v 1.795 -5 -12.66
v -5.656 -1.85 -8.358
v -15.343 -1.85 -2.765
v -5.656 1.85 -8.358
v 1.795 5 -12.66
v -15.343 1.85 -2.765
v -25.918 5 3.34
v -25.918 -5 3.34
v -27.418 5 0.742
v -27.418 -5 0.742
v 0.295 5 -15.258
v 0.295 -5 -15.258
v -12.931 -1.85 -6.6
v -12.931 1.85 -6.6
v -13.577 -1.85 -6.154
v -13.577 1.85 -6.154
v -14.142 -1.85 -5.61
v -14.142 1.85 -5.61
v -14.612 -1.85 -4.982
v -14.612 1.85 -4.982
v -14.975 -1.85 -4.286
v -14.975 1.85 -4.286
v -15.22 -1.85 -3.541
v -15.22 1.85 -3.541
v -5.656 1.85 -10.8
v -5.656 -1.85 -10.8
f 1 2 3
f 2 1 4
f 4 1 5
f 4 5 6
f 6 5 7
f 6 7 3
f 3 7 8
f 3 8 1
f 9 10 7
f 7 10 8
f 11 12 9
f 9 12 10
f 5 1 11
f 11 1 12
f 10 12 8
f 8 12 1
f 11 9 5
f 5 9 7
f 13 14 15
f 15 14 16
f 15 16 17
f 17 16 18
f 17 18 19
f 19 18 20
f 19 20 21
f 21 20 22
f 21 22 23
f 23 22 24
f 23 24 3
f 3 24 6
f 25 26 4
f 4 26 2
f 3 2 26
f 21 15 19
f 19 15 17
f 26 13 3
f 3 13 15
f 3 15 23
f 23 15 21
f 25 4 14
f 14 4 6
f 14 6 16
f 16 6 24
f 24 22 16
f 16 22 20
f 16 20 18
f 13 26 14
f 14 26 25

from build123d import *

# Parameters (mm, degrees)
EXTRUDE_1_DEPTH      = 5
EXTRUDE_1_DEPTH_BACK = 5
CUT_EXTRUDE_1_DEPTH  = 1.85


with BuildPart() as part:
    # 草圖2 → 填料-伸長1 (new, two sides: drawn at the far end of the back side and taken through both)
    with BuildSketch(Plane(origin=(0, 0, 0), x_dir=(1, 0, 0), z_dir=(0, 1, 0)).offset(-EXTRUDE_1_DEPTH_BACK)):
        Polygon((1.795278459, 12.659996299), (0.295278459, 15.25807251), (-27.417534462, -0.74192749), (-25.917534462, -3.340003701), align=None)
    extrude(amount=EXTRUDE_1_DEPTH + EXTRUDE_1_DEPTH_BACK)

    # 草圖2<7> → 除料-伸長1 (cut, symmetric)
    with BuildSketch(Plane(origin=(0, 0, 0), x_dir=(1, 0, 0), z_dir=(0, 1, 0))):
        with BuildLine():
            Line((-15.35631853, -0.706584455), (-15.35631853, 2.4))
            ThreePointArc((-15.35631853, 2.4), (-14.706541739, 4.825), (-12.93131853, 6.600223208))
            Line((-12.93131853, 6.600223208), (-5.65631853, 10.800446417))
            Line((-5.65631853, 10.800446417), (-5.65631853, 4.893713156))
            Line((-5.65631853, 4.893713156), (-15.35631853, -0.706584455))
        make_face()
    extrude(amount=CUT_EXTRUDE_1_DEPTH, both=True, mode=Mode.SUBTRACT)


solid = part.part
